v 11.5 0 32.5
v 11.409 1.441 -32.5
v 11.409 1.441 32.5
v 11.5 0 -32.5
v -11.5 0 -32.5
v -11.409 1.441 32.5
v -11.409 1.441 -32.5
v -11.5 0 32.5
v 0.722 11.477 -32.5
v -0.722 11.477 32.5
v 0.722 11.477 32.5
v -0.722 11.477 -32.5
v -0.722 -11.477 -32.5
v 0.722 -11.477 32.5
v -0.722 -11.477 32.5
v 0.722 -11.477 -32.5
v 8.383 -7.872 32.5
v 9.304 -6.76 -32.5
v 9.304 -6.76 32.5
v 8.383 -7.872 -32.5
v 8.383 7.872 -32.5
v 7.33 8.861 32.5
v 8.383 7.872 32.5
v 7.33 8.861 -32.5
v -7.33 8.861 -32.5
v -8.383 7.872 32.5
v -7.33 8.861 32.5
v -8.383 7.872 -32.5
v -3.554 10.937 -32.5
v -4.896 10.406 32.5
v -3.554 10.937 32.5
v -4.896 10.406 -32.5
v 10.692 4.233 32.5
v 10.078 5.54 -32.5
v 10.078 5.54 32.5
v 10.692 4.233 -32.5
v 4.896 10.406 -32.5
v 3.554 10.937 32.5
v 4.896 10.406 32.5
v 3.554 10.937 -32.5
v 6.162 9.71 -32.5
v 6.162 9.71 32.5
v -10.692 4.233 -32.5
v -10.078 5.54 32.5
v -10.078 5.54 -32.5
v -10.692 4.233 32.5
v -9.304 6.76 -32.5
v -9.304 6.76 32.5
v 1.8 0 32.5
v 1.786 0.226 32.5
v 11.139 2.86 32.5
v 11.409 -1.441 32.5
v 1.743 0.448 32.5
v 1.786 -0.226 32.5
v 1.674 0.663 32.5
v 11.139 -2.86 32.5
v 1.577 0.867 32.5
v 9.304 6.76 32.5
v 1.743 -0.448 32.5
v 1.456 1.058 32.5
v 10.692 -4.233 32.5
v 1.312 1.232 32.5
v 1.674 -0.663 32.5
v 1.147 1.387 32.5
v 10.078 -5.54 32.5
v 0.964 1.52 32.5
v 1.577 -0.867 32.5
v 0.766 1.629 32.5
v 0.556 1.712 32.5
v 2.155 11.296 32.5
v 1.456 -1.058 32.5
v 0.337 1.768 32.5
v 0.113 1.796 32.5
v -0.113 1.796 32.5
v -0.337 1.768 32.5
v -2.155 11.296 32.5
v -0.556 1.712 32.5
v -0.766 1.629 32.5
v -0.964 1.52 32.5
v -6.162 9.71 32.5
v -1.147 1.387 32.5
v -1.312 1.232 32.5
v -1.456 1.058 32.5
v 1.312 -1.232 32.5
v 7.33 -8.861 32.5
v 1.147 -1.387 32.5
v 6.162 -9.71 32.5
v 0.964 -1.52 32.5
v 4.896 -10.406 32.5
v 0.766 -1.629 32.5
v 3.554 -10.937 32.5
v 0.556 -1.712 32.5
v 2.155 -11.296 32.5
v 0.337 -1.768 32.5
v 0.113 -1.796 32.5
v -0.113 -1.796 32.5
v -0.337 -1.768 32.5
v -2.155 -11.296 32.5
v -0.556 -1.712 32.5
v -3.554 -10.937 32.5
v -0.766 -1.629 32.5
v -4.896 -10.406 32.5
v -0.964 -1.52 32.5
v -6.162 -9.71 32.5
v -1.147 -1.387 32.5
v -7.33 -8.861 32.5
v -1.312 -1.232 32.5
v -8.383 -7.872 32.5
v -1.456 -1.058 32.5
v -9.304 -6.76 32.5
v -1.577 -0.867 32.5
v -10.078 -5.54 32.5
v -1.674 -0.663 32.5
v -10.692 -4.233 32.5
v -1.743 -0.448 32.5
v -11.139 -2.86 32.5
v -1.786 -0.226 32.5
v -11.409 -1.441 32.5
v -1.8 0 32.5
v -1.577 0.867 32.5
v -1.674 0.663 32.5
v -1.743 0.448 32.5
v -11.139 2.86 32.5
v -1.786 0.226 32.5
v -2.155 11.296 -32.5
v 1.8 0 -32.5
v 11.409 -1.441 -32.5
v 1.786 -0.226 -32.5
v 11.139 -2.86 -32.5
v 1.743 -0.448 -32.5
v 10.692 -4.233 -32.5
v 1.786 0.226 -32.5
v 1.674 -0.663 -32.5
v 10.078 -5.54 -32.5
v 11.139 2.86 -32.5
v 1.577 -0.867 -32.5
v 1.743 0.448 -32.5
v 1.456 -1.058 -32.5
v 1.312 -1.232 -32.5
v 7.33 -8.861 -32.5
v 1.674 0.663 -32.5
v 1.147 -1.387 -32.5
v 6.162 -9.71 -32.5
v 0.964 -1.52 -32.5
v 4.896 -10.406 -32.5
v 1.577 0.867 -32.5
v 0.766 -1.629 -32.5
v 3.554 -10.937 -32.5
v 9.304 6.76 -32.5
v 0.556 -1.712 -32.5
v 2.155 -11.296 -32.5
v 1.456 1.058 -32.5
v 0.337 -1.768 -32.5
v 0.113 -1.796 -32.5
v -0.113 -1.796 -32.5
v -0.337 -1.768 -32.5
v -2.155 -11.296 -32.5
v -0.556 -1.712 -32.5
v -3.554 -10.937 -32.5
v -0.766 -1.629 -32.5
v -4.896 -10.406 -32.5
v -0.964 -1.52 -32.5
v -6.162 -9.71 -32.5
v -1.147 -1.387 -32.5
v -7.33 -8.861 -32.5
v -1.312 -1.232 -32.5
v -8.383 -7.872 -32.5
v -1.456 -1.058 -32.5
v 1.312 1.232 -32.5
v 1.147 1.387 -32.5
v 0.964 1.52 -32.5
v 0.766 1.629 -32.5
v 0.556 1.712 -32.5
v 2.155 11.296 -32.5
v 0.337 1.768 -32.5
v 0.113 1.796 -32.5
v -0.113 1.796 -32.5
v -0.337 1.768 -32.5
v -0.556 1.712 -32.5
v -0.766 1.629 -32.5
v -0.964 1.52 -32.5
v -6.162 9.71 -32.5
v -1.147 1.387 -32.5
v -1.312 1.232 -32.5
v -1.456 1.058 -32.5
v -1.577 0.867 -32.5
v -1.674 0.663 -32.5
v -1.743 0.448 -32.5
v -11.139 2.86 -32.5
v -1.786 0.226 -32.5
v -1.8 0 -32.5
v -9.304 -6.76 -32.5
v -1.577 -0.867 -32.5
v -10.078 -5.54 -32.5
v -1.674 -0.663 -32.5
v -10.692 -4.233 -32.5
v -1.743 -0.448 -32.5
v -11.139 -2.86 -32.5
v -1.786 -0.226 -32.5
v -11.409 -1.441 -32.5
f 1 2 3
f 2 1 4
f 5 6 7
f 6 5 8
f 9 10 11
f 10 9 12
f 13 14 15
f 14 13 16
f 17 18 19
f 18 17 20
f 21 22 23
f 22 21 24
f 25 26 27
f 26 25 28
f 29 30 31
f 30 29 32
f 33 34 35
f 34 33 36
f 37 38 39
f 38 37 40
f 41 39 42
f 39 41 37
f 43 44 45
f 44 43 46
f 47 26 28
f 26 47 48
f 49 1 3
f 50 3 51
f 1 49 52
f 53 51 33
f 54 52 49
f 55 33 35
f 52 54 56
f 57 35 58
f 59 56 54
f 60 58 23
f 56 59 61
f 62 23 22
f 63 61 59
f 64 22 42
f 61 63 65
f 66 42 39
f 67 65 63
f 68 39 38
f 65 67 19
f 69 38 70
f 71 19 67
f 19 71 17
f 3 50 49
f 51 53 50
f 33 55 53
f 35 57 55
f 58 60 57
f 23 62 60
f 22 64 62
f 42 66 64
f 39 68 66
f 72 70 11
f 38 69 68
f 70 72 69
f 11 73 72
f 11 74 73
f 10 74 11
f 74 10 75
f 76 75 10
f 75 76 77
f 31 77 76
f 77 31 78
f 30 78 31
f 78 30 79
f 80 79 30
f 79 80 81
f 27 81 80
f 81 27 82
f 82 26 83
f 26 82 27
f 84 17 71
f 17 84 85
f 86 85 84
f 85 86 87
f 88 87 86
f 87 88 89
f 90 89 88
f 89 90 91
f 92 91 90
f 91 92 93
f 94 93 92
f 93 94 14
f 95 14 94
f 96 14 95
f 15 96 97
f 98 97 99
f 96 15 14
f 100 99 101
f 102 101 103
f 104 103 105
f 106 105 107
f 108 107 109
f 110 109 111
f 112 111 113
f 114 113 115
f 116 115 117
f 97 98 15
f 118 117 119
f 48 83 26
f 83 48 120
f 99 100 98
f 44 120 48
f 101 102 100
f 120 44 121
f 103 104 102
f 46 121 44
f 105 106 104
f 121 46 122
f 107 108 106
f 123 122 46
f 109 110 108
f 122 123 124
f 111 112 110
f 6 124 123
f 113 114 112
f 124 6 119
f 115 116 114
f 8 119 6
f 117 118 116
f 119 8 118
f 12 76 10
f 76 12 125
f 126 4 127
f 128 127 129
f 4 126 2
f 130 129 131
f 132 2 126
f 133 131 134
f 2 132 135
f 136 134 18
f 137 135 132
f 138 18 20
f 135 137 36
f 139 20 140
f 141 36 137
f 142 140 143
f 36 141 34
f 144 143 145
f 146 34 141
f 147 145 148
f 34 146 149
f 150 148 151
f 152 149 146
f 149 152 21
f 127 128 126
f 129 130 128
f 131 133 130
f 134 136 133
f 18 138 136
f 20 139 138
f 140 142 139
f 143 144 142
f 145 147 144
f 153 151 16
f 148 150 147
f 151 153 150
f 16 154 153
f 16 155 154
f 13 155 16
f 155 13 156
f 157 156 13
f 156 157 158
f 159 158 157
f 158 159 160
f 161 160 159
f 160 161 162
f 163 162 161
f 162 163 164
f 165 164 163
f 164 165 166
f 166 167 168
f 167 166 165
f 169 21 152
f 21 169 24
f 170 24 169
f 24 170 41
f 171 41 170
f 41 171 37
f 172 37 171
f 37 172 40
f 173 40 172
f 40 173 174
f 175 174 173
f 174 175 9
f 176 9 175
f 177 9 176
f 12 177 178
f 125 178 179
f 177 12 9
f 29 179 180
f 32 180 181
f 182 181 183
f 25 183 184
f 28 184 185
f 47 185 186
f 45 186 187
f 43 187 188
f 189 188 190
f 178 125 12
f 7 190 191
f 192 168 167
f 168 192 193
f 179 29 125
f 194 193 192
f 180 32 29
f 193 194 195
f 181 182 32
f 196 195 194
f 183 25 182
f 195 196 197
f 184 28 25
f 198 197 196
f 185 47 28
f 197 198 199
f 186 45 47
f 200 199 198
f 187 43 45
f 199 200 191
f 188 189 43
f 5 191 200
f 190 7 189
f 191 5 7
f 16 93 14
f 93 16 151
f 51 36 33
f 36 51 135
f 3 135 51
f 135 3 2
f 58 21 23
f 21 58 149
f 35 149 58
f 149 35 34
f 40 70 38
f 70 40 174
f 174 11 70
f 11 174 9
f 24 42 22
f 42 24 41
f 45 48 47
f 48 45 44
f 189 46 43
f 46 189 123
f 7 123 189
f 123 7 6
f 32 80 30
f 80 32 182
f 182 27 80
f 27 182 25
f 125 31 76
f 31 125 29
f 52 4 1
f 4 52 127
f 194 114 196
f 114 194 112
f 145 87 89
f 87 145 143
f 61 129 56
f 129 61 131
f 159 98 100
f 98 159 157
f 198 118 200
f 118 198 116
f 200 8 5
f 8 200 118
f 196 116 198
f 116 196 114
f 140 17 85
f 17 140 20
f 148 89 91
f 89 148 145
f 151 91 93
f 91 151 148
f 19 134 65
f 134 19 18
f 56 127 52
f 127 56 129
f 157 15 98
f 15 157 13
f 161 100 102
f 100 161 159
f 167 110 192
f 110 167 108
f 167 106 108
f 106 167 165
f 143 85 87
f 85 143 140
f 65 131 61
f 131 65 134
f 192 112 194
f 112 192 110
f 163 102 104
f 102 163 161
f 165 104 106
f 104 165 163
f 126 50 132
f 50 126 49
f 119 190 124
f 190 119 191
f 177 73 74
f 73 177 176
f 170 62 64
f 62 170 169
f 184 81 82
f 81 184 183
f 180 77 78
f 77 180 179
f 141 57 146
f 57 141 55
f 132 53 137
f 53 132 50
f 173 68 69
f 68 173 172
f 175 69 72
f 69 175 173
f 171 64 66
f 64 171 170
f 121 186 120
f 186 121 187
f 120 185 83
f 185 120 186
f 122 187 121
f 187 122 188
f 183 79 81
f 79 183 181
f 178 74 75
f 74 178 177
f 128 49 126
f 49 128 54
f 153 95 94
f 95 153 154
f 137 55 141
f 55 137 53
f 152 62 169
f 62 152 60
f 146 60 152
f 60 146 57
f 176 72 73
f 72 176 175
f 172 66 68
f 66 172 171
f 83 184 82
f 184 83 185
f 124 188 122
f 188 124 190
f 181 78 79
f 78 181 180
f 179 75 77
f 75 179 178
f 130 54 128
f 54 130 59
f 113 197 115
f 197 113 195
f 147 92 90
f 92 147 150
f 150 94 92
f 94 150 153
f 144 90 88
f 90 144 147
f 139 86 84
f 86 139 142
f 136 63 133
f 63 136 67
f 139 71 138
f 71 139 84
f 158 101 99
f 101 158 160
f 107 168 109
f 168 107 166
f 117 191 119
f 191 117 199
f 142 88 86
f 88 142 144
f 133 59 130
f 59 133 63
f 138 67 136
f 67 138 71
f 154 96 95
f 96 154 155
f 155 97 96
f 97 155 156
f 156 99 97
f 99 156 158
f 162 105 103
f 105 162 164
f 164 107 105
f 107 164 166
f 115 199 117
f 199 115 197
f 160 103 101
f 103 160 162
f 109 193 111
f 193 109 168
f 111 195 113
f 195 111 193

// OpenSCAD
$fn = 50;


difference() {
	union() {
		translate(v = [0, 0, -32.5000000000]) {
			cylinder(h = 65, r = 11.5000000000);
		}
	}
	union() {
		translate(v = [0, 0, -100.0000000000]) {
			cylinder(h = 200, r = 1.8000000000);
		}
	}
}
